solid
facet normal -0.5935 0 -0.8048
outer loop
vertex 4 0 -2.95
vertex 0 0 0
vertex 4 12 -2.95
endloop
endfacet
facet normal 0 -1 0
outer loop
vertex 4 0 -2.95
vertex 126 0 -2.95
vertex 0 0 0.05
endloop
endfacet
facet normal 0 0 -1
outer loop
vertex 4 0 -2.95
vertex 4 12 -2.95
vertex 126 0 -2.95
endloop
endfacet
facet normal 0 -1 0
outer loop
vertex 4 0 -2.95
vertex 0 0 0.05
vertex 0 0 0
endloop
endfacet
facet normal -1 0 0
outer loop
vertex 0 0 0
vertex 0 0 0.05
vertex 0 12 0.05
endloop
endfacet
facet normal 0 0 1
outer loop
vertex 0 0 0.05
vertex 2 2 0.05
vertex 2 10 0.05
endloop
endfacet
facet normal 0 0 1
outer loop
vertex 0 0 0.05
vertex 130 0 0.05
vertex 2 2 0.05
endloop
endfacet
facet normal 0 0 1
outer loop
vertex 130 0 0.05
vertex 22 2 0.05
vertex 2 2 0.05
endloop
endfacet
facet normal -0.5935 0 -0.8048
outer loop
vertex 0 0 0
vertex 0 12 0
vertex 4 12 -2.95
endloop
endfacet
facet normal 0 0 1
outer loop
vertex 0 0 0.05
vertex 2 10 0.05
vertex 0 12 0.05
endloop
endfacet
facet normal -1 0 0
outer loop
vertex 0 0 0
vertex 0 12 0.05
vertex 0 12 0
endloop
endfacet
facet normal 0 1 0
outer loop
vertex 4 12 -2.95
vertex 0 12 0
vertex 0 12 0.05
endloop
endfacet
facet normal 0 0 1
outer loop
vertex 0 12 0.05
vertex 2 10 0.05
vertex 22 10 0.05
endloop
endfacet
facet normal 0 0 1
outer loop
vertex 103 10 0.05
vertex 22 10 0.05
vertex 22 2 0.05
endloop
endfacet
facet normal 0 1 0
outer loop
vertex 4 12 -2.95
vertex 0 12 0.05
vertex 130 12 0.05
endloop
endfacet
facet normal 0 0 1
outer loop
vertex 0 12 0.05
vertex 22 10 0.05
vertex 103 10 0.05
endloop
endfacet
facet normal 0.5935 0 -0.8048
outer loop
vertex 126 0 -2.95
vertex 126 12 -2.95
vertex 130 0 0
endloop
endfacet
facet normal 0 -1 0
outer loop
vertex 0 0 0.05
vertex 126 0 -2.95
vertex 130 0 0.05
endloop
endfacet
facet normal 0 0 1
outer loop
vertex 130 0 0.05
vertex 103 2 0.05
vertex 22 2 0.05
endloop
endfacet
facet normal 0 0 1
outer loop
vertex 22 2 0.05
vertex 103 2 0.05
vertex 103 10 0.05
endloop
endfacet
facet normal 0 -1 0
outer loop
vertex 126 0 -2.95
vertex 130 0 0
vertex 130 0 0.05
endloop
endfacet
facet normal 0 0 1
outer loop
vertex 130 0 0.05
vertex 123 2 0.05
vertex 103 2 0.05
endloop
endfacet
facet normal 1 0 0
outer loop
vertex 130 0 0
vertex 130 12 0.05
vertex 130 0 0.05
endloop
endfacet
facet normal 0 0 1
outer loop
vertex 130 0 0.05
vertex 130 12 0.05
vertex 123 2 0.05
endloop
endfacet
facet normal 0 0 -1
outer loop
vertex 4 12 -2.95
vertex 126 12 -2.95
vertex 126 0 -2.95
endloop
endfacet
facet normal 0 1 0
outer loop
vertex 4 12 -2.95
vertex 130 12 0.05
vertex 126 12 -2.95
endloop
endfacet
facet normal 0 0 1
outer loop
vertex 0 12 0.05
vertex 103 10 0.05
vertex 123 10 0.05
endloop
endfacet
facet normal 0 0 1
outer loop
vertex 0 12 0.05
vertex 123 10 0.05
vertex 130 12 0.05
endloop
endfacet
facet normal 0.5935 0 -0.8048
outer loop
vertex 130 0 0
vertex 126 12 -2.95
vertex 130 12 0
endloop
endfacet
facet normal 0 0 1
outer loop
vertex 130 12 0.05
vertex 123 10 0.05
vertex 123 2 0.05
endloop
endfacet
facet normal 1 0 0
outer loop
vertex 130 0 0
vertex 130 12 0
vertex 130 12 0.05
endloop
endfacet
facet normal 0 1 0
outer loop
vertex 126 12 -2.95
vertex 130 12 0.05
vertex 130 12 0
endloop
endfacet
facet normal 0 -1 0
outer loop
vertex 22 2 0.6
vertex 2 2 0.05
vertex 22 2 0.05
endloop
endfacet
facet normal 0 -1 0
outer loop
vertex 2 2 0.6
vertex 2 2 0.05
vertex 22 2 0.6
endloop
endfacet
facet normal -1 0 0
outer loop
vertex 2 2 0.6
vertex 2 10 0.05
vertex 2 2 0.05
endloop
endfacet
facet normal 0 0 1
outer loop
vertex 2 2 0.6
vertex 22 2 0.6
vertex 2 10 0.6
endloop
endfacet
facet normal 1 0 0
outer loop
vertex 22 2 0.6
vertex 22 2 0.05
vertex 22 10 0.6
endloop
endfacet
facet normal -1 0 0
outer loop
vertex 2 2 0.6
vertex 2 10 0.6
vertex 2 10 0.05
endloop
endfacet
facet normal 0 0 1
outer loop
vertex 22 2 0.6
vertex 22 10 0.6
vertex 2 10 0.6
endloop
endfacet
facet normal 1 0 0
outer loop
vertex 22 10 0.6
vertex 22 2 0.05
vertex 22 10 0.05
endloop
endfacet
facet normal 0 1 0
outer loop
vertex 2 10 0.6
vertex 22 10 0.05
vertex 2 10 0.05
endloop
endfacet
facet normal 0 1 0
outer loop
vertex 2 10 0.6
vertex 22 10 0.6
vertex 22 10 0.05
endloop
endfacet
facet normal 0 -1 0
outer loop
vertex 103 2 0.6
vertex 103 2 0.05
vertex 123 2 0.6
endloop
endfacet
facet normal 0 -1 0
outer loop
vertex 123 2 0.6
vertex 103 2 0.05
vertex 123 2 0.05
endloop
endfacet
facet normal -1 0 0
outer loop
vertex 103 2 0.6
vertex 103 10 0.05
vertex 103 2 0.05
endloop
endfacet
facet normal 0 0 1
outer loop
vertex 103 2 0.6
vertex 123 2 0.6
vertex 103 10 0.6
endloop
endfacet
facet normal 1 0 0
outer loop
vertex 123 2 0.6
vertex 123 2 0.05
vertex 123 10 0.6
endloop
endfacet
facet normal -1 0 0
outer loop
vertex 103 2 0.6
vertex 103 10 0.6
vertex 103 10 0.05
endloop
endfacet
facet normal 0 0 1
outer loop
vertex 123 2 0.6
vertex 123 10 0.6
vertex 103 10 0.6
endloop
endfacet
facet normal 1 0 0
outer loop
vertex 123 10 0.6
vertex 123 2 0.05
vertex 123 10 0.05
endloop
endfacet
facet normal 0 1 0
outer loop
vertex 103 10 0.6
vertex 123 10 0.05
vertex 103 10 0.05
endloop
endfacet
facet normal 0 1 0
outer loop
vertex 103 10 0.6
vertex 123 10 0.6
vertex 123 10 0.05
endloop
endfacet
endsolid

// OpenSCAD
// =============================================================================
// NOVA chassis — BELLY SKID RAIL (TPU 95A — print 2, one per side)
// =============================================================================
// Backlog #15 (2026-07-06): E-stop limp = collapse BY DESIGN, and the
// battery tray bottom (z -39.2) is the lowest point on the robot — a
// LiPo puncture is a fire. These rails are the sacrificial landing pads:
// collapse-pose check (all joints limp -> nothing holds the body -> the
// belly settles to ground with legs splayed/folded) puts first sustained
// contact HERE. Rails also take rock strikes and deep-crouch bottom-outs.
//
// Mount: 0.6 raised keys drop into matching recesses in the battery
// pocket's bottom face (battery_pocket.scad rev — keying takes the shear,
// glue takes the peel: CA or VHB. Sacrificial + replaceable: peel, clean,
// reglue). Rail body stands 3.0 proud -> robot's new lowest z = -42.2
// (still 127 ground clearance standing).
//
// Placement (trunk frame): y = +/-15 rail centerline (clear of the rim
// boss columns at y +/-26.5 and the strap under-pack groove at
// x -77..-61); x -55..+75, sled-chamfered both ends.
//
// Print: TPU 95A, flat on the key face, 100% infill (it's 6 g).

$fn = 32;
EPS = 0.05;

RAIL_L = 130;          // x -55..+75 in trunk frame
RAIL_W = 12;
RAIL_T = 3.0;          // proud of the tray bottom
KEY_T  = 0.6;          // into the pocket recesses
KEY_L  = 20;  KEY_W = 8;
KEY_X  = [12, 113];    // key CENTERS along the rail (rail local x 0..130)
                       // -> trunk x -43 and +58 (clear of the groove zone)
CHAMF  = 4;            // sled end chamfer

module skid_rail() {
    union() {
        // body with sled ends (45 deg chamfers on the ground face)
        hull() {
            translate([0, 0, 0]) cube([RAIL_L, RAIL_W, EPS]);
            translate([CHAMF, 0, -RAIL_T + EPS])
                cube([RAIL_L - 2 * CHAMF, RAIL_W, EPS]);
        }
        // keys (up into the pocket bottom)
        for (kx = KEY_X)
            translate([kx - KEY_L / 2, (RAIL_W - KEY_W) / 2, -EPS])
                cube([KEY_L, KEY_W, KEY_T + EPS]);
    }
}

skid_rail();
